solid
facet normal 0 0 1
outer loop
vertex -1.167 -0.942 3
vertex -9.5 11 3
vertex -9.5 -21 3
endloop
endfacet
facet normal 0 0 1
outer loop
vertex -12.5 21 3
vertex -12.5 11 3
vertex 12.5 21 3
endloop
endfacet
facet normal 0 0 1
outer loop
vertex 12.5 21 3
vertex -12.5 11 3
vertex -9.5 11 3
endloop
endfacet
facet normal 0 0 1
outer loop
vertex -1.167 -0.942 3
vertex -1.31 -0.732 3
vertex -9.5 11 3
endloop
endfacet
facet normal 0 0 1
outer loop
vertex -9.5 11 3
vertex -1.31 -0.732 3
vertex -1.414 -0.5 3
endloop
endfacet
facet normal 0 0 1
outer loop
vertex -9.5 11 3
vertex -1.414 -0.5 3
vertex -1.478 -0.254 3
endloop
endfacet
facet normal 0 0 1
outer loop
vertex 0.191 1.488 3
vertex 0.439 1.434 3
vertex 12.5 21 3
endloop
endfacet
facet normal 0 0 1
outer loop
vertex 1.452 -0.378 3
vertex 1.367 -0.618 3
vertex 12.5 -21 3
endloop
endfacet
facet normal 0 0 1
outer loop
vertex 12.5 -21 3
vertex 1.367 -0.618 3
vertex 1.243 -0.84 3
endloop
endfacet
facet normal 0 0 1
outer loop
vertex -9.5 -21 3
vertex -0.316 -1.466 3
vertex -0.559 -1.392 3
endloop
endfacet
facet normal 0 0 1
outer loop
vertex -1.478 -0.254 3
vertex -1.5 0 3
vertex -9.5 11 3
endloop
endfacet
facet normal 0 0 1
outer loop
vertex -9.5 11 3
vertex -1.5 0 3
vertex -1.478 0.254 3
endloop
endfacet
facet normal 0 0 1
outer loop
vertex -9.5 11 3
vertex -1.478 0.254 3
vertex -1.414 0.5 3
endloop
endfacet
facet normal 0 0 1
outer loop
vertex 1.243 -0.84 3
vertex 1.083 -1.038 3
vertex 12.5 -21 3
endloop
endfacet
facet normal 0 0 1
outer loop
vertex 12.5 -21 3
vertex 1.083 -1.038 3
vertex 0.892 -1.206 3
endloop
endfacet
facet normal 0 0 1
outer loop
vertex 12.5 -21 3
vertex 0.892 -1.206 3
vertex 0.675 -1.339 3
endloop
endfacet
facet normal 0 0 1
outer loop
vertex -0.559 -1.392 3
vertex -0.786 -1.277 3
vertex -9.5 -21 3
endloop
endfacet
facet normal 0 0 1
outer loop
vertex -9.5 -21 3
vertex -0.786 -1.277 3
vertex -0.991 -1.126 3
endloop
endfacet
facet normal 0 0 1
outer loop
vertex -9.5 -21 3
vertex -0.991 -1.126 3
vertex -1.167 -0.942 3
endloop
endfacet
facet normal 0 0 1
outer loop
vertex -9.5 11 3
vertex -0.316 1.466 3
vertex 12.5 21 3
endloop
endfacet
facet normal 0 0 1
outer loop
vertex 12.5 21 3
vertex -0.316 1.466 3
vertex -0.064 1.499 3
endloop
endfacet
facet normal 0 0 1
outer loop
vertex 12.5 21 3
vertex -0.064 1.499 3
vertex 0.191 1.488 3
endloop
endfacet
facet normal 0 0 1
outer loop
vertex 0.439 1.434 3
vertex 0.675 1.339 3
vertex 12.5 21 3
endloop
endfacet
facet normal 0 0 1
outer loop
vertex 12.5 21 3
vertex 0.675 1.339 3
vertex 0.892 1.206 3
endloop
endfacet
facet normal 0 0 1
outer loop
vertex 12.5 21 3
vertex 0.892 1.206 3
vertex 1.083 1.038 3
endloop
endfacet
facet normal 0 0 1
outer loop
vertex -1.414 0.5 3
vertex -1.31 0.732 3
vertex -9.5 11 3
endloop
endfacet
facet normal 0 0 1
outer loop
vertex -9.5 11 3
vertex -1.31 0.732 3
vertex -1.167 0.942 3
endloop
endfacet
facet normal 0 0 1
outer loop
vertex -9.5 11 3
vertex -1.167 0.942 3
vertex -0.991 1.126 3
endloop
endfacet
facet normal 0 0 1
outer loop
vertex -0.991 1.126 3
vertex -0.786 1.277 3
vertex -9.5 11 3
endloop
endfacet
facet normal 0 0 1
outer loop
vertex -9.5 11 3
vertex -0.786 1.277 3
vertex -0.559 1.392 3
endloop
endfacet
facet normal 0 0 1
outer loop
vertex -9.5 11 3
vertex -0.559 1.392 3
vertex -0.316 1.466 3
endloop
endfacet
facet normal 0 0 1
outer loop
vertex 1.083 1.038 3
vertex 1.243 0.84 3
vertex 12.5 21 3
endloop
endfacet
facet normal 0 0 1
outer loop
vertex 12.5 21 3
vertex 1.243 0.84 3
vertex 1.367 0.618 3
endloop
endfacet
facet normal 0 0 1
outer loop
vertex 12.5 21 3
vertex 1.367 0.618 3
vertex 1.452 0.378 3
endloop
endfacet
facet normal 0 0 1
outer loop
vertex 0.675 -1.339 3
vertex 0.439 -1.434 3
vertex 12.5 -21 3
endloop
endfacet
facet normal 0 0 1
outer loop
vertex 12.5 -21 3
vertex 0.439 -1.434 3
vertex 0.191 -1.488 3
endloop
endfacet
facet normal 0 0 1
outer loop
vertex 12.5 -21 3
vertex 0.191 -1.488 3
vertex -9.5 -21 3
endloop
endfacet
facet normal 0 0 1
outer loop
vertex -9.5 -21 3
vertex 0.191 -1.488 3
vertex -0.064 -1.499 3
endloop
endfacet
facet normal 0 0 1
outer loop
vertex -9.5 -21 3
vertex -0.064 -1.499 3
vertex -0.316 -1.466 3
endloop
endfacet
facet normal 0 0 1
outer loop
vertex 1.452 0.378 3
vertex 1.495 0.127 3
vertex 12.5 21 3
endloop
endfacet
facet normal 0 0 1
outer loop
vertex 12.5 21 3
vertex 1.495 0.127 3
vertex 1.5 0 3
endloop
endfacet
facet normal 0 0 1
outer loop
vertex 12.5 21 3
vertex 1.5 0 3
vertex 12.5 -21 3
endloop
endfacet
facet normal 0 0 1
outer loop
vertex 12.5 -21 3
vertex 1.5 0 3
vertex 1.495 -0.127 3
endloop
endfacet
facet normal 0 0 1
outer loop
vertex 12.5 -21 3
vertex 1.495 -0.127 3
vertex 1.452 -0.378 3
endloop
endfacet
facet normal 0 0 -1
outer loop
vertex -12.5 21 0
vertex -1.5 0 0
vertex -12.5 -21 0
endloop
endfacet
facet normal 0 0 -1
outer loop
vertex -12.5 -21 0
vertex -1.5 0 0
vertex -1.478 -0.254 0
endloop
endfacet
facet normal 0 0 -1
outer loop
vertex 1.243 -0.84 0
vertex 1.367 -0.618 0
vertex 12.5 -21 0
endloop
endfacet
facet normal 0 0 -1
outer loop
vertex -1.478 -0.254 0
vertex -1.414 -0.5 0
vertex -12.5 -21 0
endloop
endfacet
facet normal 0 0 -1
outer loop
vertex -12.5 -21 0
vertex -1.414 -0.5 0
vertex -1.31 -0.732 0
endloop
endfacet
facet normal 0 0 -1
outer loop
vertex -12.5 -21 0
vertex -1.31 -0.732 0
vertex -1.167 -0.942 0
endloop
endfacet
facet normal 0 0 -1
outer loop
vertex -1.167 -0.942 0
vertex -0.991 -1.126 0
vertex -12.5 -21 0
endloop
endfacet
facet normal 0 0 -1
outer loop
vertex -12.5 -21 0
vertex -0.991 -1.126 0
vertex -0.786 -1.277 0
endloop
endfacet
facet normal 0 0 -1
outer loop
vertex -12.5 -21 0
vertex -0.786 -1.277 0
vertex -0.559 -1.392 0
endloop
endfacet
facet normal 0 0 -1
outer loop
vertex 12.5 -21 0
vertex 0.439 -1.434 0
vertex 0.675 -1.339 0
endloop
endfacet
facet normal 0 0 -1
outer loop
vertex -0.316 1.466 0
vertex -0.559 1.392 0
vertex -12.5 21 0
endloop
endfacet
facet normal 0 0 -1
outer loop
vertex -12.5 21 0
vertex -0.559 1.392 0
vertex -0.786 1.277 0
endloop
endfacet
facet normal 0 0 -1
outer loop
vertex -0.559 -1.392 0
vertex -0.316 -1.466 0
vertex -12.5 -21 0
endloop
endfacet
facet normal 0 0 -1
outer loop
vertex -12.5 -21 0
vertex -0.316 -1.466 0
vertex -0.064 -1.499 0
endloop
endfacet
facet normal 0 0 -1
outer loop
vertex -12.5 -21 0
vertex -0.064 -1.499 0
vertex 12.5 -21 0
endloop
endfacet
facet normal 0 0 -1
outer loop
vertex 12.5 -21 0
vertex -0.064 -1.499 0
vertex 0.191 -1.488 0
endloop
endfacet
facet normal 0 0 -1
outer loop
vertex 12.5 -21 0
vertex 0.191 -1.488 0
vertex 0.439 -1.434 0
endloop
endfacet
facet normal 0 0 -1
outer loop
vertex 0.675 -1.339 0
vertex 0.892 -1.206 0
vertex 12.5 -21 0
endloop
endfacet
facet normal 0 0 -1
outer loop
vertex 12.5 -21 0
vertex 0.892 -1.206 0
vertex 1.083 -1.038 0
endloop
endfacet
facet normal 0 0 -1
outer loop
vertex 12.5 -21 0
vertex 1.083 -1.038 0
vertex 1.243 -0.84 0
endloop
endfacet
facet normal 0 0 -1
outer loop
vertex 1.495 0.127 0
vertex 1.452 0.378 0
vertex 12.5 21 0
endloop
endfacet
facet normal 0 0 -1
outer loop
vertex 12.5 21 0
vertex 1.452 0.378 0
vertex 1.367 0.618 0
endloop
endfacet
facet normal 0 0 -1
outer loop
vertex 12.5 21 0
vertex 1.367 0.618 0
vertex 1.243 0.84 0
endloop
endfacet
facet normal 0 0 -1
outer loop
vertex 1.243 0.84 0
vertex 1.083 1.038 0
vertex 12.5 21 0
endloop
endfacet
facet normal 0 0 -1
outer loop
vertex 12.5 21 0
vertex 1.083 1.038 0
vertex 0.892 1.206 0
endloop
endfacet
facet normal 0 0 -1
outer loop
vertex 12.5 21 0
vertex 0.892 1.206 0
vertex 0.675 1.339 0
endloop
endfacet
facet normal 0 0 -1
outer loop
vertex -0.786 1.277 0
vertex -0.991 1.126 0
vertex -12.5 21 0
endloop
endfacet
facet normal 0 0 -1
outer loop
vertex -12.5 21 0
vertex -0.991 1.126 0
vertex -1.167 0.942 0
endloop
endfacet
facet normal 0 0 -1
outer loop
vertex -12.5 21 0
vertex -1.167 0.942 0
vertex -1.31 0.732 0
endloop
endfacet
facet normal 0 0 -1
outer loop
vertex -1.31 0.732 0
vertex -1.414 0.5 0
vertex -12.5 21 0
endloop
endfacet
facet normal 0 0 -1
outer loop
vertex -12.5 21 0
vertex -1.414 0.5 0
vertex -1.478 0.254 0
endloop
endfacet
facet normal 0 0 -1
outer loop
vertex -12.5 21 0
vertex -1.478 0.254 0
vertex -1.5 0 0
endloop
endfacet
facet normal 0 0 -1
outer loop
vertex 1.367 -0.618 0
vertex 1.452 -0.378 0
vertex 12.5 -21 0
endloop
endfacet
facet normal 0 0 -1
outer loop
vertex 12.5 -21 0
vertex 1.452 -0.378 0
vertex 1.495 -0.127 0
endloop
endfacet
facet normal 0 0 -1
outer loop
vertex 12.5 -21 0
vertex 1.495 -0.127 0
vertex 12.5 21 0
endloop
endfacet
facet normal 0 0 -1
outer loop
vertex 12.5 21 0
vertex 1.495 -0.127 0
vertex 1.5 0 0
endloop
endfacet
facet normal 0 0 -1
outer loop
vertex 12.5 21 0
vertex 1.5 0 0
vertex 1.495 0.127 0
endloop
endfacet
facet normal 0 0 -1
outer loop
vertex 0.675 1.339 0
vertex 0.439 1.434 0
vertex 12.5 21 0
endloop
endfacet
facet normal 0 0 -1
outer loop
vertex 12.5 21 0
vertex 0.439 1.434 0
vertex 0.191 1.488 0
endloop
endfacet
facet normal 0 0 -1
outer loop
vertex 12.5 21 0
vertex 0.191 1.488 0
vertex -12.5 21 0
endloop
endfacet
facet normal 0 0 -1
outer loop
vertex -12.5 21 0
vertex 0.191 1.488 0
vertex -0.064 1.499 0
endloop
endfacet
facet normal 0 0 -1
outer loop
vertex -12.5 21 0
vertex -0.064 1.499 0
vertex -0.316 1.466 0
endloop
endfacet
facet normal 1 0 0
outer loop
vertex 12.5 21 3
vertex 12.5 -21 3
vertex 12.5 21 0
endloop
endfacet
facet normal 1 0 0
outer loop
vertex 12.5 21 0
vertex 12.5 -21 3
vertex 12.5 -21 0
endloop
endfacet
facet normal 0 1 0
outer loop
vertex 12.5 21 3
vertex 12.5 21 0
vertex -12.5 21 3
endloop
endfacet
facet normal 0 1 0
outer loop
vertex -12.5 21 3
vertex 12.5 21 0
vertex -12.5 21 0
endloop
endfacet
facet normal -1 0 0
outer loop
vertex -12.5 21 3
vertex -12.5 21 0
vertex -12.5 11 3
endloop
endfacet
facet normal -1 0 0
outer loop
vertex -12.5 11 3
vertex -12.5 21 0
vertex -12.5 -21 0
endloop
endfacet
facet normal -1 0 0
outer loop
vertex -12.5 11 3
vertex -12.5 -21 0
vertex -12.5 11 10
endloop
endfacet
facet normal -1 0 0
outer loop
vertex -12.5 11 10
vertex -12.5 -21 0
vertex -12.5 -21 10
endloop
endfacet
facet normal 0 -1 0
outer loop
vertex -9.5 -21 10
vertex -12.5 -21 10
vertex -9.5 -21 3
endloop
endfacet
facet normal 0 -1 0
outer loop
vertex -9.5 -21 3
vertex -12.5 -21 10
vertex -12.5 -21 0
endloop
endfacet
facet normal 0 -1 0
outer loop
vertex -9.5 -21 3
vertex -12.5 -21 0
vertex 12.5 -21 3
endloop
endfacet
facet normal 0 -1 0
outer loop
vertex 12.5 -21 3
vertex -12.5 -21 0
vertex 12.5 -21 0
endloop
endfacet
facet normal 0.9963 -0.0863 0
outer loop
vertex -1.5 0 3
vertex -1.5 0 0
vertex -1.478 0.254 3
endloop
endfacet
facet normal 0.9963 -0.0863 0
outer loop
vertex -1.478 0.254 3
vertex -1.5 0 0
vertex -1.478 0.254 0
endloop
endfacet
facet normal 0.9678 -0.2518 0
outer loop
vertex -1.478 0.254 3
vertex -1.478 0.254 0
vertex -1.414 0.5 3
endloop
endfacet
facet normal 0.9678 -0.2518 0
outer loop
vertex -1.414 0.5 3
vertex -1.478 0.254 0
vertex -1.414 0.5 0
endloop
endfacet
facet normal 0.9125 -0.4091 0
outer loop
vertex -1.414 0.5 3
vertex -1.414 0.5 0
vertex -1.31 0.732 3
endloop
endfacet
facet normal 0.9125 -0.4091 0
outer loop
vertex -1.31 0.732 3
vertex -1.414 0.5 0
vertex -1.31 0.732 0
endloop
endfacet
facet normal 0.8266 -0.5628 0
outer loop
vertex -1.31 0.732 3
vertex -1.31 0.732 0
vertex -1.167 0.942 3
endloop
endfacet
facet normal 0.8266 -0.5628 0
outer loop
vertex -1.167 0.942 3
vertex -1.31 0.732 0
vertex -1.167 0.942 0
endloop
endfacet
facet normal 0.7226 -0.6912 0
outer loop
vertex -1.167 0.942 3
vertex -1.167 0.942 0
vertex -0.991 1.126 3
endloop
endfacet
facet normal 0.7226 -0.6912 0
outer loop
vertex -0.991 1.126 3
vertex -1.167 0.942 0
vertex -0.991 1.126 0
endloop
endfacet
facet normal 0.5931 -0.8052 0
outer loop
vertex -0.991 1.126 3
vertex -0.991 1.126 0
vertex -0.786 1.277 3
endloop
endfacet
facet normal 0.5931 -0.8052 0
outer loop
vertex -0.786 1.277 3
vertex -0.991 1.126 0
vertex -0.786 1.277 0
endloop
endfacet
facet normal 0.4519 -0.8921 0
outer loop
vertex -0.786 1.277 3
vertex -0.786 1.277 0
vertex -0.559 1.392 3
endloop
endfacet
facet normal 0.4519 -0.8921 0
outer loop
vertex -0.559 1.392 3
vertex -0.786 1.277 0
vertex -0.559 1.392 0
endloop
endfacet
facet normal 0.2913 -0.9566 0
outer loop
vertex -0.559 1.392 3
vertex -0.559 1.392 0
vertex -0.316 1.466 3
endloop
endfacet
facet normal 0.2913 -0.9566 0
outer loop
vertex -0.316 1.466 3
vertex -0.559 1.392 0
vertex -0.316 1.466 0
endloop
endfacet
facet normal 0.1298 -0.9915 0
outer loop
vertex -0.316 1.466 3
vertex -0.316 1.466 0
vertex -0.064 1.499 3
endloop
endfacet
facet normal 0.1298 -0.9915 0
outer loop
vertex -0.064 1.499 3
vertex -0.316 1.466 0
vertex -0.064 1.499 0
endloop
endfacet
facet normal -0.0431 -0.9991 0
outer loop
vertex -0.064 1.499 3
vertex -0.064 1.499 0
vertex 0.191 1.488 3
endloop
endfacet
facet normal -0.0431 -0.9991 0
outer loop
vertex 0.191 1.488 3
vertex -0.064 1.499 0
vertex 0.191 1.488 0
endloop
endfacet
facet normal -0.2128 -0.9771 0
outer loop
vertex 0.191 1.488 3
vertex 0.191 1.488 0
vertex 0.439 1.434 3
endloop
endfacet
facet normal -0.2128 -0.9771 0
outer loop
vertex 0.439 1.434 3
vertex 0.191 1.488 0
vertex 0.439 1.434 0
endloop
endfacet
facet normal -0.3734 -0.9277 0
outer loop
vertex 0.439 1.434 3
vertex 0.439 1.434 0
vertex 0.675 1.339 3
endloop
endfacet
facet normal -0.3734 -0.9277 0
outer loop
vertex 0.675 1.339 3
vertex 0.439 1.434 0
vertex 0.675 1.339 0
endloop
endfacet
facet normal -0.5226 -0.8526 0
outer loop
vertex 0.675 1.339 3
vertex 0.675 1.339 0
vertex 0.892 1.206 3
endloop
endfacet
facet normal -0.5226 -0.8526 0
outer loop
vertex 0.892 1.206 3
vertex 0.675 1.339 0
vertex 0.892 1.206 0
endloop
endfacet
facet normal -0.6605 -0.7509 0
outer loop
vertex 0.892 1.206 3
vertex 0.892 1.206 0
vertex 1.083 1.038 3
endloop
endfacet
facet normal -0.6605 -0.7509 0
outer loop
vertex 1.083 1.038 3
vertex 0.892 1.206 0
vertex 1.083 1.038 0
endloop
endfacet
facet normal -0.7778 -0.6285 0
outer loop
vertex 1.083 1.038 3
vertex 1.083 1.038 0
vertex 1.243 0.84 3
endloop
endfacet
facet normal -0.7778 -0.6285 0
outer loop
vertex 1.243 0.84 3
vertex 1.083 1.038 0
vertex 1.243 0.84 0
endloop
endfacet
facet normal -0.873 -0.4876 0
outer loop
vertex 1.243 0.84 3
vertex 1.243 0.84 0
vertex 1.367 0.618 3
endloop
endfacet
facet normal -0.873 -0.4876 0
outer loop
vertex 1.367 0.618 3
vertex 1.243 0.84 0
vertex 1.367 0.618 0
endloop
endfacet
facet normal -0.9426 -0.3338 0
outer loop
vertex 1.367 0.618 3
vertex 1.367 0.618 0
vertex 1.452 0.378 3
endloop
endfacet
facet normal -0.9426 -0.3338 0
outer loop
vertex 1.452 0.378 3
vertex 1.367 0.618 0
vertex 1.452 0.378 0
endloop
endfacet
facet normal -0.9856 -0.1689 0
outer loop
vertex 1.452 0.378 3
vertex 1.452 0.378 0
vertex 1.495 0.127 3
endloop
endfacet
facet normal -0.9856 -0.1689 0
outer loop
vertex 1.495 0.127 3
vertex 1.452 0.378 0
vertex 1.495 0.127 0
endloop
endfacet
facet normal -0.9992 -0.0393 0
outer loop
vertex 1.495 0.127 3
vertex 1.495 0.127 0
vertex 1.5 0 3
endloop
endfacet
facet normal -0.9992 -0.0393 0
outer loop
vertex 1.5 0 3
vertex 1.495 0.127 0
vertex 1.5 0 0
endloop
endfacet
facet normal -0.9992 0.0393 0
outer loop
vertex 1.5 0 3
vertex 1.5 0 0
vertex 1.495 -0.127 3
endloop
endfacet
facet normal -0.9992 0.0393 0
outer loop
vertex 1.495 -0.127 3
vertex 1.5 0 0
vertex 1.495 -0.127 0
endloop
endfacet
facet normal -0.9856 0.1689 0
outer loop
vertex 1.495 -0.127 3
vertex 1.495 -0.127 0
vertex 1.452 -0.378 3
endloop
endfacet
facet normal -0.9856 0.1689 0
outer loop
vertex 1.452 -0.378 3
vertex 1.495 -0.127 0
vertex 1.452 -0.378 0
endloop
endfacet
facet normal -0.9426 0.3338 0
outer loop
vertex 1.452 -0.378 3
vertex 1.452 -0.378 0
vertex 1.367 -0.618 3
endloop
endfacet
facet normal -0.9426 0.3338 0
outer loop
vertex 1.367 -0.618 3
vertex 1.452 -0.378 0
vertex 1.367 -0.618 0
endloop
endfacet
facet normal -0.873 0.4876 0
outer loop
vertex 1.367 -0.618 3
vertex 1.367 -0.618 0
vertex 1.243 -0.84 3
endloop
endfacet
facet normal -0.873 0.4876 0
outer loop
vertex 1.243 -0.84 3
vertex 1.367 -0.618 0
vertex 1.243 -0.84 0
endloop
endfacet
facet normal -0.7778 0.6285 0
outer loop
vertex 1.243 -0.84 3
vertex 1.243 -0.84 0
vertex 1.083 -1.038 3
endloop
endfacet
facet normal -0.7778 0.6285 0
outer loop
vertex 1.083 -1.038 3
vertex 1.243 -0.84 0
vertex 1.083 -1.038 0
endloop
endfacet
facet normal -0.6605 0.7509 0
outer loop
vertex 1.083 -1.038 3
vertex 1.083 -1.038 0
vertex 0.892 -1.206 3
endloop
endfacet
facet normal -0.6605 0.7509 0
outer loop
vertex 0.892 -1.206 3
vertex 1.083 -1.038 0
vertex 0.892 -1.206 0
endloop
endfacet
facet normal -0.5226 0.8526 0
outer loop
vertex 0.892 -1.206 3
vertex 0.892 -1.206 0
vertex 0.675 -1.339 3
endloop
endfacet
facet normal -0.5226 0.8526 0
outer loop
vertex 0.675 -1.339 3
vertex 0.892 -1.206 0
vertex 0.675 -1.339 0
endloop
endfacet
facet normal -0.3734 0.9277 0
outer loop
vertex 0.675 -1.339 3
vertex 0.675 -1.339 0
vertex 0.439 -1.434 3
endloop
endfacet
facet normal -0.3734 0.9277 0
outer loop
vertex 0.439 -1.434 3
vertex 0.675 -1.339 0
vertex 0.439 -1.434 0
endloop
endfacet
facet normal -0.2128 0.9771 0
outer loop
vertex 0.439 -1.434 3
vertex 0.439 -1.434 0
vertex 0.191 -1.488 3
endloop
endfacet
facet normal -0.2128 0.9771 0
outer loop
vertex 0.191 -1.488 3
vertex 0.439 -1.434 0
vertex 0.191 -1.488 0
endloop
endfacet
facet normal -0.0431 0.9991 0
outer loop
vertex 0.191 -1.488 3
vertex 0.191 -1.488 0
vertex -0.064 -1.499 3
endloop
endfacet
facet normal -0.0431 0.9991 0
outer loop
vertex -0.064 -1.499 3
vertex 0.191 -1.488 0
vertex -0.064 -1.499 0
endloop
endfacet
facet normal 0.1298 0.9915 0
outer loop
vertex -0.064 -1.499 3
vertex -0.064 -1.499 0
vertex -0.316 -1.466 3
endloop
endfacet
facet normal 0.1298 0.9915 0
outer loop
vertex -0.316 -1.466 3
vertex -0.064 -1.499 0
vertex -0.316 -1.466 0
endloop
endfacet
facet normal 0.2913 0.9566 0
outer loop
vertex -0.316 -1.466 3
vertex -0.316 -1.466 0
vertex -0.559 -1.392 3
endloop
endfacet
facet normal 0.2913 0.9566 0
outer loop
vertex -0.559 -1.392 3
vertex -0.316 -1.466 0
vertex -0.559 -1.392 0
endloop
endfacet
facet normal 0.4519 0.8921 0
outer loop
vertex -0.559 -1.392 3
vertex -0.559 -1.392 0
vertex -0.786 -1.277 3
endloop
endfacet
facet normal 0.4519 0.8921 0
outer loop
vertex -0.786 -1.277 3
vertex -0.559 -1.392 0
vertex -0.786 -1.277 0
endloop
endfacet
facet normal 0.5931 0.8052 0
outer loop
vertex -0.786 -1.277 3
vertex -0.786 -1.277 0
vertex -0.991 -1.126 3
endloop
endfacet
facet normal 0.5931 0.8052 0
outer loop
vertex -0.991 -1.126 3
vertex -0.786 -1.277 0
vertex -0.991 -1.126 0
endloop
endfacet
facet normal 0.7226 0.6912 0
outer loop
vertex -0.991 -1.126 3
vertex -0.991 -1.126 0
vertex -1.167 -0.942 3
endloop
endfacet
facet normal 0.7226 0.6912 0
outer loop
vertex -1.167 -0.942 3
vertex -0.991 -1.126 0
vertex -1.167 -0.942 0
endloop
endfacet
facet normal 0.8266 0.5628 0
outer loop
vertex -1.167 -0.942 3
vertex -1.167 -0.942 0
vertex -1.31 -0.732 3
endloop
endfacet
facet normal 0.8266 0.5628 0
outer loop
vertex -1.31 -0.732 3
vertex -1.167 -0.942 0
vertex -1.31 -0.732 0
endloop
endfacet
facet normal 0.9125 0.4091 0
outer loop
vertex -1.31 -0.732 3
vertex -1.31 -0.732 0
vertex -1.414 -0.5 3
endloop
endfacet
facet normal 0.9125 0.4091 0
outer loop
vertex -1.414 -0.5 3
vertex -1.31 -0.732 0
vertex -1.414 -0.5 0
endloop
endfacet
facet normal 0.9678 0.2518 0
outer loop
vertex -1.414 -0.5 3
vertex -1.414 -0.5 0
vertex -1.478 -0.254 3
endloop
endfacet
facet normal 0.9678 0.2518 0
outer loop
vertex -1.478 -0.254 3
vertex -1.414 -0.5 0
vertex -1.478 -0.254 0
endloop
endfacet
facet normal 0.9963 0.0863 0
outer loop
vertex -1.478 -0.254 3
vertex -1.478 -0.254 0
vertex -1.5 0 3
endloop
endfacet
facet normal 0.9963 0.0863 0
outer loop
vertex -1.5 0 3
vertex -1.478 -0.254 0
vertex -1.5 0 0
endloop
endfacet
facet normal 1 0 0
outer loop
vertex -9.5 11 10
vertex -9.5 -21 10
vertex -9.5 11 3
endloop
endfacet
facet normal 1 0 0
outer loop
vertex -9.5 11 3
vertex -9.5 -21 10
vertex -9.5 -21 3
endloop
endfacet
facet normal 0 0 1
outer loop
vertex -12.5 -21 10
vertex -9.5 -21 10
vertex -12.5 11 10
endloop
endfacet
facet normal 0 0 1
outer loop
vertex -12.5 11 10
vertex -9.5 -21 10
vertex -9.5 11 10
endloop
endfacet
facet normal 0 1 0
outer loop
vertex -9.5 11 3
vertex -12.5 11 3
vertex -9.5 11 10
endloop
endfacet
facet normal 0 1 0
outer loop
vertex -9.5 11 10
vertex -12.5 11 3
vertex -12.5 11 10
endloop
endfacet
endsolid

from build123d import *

# Parameters (mm, degrees)
SKETCH_1_W          = 25
SKETCH_1_H          = 42
SKETCH_1_R          = 1.5
EXTRUDE_1_DEPTH     = 3
SKETCH_2_W          = 3
SKETCH_2_H          = 42
EXTRUDE_2_DEPTH     = 7
SKETCH_4_W          = 7
SKETCH_4_H          = 10
CUT_EXTRUDE_1_DEPTH = 10


with BuildPart() as part:
    # 草图1 → 凸台-拉伸1 (new body)
    with BuildSketch(Plane.XY):
        Rectangle(SKETCH_1_W, SKETCH_1_H)
        Circle(SKETCH_1_R, mode=Mode.SUBTRACT)
    extrude(amount=EXTRUDE_1_DEPTH)

    # 草图2 → 凸台-拉伸2 (add)
    with BuildSketch(Plane.XY.offset(3)):
        with Locations((-11, 0)):
            Rectangle(SKETCH_2_W, SKETCH_2_H)
    extrude(amount=EXTRUDE_2_DEPTH)

    # 草图4 → 切除-拉伸1 (cut)
    with BuildSketch(Plane(origin=(-9.5, 0, 0), x_dir=(0, 0, -1), z_dir=(1, 0, 0))):
        with Locations((-6.5, 16)):
            Rectangle(SKETCH_4_W, SKETCH_4_H)
    extrude(amount=-CUT_EXTRUDE_1_DEPTH, mode=Mode.SUBTRACT)


solid = part.part
